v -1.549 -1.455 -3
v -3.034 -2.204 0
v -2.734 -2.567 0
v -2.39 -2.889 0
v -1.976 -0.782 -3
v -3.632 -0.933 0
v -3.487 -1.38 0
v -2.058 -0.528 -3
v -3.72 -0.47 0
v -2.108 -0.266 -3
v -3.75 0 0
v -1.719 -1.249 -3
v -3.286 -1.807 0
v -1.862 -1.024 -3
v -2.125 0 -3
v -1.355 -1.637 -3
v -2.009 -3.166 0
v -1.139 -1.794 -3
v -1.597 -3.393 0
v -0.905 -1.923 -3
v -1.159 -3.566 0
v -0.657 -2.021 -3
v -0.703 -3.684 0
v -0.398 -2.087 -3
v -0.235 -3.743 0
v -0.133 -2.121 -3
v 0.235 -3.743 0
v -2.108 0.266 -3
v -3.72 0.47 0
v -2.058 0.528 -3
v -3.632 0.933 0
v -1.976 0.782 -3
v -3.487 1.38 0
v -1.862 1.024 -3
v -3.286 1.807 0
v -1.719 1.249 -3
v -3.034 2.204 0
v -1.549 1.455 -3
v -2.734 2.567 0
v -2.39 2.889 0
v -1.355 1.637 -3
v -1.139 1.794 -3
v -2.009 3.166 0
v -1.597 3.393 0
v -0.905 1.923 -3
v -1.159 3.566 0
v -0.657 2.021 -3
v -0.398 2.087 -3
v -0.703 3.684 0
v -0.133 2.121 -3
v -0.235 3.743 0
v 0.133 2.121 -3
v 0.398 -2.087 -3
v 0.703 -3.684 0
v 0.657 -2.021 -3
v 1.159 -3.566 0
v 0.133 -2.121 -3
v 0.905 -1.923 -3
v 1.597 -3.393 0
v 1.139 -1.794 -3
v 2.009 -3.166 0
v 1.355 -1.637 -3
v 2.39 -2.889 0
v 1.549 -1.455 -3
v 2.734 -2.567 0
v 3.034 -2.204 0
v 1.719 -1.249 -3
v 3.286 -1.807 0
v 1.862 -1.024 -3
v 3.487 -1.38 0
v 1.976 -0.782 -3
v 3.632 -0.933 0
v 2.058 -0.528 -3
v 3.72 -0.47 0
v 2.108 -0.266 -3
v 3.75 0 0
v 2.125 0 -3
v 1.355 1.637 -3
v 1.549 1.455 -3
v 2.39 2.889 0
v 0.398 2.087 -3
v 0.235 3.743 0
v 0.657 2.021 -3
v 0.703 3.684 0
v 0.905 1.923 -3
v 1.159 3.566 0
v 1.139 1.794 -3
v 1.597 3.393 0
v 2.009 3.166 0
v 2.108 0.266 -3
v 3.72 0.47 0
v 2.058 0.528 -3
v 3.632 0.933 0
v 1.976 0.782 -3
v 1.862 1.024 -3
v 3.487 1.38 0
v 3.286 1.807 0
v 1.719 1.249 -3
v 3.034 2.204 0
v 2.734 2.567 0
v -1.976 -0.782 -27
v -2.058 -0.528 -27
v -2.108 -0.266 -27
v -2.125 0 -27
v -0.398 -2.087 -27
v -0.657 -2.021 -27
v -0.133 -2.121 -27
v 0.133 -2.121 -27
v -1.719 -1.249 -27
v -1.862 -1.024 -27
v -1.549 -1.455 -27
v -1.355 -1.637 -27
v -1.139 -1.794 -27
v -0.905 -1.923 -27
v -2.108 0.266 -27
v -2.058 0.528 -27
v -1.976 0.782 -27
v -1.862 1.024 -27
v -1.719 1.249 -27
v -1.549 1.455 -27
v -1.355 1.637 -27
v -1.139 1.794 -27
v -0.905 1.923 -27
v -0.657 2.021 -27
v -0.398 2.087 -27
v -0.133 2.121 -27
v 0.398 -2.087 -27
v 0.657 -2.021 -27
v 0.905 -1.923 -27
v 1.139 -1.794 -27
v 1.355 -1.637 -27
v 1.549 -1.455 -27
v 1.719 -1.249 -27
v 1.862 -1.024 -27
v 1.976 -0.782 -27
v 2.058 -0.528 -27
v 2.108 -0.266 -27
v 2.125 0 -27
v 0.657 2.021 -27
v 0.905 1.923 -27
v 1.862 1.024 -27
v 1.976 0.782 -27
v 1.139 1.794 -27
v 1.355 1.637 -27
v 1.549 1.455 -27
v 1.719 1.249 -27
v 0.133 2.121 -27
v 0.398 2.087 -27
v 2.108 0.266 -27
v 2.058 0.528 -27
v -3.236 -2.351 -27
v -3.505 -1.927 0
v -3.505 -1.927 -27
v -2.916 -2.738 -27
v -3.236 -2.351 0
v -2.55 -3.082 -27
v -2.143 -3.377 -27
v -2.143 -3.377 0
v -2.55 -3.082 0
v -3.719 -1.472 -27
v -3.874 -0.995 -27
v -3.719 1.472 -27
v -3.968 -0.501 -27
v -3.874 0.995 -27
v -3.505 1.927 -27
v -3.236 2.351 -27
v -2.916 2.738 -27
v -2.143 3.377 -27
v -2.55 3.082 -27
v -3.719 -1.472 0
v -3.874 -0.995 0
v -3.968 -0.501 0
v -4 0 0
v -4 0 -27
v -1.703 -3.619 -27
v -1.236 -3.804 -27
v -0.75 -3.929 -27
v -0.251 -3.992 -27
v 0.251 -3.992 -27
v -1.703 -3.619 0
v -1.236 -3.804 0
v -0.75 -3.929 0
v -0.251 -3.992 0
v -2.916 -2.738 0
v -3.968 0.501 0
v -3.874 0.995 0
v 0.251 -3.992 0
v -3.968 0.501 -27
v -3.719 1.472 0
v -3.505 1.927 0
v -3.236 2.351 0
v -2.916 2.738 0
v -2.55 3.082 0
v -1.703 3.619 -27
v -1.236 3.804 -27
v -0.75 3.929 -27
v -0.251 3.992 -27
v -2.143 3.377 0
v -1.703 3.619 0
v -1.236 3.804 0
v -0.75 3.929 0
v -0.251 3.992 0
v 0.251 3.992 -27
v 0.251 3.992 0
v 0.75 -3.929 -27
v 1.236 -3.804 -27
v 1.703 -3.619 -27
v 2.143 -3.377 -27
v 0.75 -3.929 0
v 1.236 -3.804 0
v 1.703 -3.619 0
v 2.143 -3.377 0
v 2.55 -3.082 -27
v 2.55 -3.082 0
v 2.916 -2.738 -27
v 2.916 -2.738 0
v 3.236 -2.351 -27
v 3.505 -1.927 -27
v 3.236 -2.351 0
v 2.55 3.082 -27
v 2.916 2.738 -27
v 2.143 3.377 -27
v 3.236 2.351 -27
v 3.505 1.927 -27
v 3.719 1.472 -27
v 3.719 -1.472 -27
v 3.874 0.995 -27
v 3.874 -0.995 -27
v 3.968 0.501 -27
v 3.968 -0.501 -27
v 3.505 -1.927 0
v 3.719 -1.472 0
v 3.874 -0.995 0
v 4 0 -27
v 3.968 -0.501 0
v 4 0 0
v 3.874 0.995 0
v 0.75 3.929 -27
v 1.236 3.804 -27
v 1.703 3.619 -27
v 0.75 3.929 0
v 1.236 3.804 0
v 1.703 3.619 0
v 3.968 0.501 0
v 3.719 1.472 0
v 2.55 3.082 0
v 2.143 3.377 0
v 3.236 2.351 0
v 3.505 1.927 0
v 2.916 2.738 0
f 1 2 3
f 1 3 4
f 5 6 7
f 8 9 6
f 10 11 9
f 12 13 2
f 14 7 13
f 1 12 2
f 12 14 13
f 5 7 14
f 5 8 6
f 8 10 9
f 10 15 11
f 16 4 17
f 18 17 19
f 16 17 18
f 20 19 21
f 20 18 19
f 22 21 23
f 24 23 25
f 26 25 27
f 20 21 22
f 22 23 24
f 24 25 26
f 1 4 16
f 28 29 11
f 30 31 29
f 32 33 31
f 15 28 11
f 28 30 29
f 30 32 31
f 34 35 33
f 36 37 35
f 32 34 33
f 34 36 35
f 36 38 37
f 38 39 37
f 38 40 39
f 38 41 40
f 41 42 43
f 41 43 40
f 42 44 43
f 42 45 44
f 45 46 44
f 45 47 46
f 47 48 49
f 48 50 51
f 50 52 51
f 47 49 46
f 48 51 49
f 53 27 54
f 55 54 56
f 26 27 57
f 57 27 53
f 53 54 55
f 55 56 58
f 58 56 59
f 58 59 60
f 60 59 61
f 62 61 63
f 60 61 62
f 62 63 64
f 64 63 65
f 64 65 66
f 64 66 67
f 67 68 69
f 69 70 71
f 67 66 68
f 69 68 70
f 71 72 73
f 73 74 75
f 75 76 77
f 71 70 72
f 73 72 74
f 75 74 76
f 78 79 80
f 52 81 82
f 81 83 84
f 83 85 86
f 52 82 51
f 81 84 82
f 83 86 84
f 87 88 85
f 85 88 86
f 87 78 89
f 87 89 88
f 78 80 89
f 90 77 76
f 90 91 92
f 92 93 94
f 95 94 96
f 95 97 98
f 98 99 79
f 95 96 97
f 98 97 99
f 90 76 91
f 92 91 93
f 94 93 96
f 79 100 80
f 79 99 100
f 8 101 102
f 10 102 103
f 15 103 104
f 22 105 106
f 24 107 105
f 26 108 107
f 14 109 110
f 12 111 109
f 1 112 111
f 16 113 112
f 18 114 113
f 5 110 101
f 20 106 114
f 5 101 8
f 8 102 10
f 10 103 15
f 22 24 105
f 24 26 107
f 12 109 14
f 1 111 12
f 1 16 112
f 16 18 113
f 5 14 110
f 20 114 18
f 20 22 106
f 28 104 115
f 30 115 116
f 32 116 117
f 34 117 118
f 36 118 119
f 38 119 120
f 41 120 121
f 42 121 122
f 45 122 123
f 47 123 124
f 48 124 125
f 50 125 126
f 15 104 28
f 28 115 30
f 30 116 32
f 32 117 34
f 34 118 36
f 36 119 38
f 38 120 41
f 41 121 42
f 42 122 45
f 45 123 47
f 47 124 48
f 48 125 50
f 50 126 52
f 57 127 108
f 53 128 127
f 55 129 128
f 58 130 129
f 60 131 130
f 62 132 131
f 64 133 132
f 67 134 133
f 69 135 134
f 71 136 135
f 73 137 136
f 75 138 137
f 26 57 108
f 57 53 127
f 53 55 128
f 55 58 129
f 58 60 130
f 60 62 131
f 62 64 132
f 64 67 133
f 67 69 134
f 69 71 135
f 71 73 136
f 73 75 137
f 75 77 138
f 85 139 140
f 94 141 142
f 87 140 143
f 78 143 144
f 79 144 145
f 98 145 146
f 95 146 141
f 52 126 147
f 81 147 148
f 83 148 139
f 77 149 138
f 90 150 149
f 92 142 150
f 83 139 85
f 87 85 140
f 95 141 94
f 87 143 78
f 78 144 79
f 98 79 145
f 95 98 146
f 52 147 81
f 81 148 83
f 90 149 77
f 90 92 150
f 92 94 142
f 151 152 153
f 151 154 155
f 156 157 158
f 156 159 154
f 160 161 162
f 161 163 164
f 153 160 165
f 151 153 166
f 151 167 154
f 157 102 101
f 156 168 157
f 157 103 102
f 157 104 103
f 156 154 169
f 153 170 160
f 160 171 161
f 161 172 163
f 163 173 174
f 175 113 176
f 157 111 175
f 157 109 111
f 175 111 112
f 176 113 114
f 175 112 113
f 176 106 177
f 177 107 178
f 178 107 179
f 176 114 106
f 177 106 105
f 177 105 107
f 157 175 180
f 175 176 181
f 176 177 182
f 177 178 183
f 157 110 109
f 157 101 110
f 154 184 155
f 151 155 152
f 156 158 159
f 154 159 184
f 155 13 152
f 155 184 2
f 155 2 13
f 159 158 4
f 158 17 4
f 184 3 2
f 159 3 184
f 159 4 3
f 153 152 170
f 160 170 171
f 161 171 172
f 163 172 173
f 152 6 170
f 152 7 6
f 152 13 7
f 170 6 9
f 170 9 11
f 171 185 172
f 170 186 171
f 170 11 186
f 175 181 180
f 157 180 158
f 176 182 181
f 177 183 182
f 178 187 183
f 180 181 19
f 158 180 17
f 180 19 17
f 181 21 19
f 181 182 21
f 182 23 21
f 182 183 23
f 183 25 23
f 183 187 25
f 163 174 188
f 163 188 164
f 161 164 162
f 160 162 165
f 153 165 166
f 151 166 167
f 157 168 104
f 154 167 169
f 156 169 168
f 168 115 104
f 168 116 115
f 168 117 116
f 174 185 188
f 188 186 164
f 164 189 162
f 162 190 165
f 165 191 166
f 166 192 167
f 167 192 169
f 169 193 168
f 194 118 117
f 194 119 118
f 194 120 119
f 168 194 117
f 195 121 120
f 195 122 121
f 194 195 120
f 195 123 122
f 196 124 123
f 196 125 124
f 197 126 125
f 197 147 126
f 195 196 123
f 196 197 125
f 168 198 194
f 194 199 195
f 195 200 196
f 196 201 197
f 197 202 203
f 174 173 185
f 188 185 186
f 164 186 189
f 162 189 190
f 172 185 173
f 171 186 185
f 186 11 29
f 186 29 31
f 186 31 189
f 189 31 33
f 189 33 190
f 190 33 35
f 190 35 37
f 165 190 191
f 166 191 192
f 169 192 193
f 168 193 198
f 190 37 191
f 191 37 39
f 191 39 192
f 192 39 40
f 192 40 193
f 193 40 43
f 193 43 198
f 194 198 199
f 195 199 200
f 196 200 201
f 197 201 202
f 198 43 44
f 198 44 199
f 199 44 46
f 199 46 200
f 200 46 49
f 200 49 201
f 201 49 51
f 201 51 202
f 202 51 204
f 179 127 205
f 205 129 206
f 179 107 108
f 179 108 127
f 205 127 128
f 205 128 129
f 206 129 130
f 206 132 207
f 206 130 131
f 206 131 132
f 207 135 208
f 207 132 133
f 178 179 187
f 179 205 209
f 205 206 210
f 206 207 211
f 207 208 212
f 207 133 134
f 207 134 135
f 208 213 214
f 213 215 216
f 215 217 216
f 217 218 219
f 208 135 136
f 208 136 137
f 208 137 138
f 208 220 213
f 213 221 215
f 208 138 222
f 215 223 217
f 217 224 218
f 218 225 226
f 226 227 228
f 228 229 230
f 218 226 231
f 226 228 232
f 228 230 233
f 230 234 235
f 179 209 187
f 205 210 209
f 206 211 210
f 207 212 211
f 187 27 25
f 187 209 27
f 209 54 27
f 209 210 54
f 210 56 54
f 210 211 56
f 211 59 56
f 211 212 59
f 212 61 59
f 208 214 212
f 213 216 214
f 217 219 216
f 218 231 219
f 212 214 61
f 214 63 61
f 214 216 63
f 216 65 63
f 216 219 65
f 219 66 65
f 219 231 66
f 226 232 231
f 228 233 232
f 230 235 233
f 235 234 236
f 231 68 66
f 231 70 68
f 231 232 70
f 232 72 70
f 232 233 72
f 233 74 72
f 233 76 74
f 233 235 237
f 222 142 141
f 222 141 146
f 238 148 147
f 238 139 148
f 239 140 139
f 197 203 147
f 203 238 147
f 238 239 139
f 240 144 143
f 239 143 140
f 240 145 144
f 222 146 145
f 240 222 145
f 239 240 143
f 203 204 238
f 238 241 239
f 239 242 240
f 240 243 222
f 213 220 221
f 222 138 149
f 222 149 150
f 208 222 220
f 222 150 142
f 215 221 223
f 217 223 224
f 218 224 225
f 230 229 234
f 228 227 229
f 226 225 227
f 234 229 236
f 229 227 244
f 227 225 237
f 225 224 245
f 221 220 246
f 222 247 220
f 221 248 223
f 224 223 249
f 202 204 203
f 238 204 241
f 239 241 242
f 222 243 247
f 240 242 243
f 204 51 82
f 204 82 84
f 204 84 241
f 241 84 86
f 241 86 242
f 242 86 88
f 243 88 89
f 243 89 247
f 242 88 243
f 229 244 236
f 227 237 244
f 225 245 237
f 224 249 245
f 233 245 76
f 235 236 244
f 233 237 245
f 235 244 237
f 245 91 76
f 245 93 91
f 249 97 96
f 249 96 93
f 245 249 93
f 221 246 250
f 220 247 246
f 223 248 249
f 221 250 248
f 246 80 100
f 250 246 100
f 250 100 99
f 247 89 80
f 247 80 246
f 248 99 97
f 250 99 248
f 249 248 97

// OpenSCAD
$fn = 50;

difference() {
	union() {
		translate(v = [0, 0, -27.0]) {
			cylinder(h = 30, r = 4.0);
		}
	}
	union() {
		translate(v = [0, 0, 0]) {
			rotate(a = [0, 0, 0]) {
				difference() {
					union() {
						translate(v = [0, 0, -30.0]) {
							cylinder(h = 30, r = 2.0);
						}
						translate(v = [0, 0, -3]) {
							cylinder(h = 3, r1 = 2.125, r2 = 3.75);
						}
						translate(v = [0, 0, -30.0]) {
							cylinder(h = 30, r = 2.125);
						}
						translate(v = [0, 0, -30.0]) {
							cylinder(h = 30, r = 2.0);
						}
					}
					union();
				}
			}
		}
		#cylinder(h = 3, r = 5.0);
	}
}
